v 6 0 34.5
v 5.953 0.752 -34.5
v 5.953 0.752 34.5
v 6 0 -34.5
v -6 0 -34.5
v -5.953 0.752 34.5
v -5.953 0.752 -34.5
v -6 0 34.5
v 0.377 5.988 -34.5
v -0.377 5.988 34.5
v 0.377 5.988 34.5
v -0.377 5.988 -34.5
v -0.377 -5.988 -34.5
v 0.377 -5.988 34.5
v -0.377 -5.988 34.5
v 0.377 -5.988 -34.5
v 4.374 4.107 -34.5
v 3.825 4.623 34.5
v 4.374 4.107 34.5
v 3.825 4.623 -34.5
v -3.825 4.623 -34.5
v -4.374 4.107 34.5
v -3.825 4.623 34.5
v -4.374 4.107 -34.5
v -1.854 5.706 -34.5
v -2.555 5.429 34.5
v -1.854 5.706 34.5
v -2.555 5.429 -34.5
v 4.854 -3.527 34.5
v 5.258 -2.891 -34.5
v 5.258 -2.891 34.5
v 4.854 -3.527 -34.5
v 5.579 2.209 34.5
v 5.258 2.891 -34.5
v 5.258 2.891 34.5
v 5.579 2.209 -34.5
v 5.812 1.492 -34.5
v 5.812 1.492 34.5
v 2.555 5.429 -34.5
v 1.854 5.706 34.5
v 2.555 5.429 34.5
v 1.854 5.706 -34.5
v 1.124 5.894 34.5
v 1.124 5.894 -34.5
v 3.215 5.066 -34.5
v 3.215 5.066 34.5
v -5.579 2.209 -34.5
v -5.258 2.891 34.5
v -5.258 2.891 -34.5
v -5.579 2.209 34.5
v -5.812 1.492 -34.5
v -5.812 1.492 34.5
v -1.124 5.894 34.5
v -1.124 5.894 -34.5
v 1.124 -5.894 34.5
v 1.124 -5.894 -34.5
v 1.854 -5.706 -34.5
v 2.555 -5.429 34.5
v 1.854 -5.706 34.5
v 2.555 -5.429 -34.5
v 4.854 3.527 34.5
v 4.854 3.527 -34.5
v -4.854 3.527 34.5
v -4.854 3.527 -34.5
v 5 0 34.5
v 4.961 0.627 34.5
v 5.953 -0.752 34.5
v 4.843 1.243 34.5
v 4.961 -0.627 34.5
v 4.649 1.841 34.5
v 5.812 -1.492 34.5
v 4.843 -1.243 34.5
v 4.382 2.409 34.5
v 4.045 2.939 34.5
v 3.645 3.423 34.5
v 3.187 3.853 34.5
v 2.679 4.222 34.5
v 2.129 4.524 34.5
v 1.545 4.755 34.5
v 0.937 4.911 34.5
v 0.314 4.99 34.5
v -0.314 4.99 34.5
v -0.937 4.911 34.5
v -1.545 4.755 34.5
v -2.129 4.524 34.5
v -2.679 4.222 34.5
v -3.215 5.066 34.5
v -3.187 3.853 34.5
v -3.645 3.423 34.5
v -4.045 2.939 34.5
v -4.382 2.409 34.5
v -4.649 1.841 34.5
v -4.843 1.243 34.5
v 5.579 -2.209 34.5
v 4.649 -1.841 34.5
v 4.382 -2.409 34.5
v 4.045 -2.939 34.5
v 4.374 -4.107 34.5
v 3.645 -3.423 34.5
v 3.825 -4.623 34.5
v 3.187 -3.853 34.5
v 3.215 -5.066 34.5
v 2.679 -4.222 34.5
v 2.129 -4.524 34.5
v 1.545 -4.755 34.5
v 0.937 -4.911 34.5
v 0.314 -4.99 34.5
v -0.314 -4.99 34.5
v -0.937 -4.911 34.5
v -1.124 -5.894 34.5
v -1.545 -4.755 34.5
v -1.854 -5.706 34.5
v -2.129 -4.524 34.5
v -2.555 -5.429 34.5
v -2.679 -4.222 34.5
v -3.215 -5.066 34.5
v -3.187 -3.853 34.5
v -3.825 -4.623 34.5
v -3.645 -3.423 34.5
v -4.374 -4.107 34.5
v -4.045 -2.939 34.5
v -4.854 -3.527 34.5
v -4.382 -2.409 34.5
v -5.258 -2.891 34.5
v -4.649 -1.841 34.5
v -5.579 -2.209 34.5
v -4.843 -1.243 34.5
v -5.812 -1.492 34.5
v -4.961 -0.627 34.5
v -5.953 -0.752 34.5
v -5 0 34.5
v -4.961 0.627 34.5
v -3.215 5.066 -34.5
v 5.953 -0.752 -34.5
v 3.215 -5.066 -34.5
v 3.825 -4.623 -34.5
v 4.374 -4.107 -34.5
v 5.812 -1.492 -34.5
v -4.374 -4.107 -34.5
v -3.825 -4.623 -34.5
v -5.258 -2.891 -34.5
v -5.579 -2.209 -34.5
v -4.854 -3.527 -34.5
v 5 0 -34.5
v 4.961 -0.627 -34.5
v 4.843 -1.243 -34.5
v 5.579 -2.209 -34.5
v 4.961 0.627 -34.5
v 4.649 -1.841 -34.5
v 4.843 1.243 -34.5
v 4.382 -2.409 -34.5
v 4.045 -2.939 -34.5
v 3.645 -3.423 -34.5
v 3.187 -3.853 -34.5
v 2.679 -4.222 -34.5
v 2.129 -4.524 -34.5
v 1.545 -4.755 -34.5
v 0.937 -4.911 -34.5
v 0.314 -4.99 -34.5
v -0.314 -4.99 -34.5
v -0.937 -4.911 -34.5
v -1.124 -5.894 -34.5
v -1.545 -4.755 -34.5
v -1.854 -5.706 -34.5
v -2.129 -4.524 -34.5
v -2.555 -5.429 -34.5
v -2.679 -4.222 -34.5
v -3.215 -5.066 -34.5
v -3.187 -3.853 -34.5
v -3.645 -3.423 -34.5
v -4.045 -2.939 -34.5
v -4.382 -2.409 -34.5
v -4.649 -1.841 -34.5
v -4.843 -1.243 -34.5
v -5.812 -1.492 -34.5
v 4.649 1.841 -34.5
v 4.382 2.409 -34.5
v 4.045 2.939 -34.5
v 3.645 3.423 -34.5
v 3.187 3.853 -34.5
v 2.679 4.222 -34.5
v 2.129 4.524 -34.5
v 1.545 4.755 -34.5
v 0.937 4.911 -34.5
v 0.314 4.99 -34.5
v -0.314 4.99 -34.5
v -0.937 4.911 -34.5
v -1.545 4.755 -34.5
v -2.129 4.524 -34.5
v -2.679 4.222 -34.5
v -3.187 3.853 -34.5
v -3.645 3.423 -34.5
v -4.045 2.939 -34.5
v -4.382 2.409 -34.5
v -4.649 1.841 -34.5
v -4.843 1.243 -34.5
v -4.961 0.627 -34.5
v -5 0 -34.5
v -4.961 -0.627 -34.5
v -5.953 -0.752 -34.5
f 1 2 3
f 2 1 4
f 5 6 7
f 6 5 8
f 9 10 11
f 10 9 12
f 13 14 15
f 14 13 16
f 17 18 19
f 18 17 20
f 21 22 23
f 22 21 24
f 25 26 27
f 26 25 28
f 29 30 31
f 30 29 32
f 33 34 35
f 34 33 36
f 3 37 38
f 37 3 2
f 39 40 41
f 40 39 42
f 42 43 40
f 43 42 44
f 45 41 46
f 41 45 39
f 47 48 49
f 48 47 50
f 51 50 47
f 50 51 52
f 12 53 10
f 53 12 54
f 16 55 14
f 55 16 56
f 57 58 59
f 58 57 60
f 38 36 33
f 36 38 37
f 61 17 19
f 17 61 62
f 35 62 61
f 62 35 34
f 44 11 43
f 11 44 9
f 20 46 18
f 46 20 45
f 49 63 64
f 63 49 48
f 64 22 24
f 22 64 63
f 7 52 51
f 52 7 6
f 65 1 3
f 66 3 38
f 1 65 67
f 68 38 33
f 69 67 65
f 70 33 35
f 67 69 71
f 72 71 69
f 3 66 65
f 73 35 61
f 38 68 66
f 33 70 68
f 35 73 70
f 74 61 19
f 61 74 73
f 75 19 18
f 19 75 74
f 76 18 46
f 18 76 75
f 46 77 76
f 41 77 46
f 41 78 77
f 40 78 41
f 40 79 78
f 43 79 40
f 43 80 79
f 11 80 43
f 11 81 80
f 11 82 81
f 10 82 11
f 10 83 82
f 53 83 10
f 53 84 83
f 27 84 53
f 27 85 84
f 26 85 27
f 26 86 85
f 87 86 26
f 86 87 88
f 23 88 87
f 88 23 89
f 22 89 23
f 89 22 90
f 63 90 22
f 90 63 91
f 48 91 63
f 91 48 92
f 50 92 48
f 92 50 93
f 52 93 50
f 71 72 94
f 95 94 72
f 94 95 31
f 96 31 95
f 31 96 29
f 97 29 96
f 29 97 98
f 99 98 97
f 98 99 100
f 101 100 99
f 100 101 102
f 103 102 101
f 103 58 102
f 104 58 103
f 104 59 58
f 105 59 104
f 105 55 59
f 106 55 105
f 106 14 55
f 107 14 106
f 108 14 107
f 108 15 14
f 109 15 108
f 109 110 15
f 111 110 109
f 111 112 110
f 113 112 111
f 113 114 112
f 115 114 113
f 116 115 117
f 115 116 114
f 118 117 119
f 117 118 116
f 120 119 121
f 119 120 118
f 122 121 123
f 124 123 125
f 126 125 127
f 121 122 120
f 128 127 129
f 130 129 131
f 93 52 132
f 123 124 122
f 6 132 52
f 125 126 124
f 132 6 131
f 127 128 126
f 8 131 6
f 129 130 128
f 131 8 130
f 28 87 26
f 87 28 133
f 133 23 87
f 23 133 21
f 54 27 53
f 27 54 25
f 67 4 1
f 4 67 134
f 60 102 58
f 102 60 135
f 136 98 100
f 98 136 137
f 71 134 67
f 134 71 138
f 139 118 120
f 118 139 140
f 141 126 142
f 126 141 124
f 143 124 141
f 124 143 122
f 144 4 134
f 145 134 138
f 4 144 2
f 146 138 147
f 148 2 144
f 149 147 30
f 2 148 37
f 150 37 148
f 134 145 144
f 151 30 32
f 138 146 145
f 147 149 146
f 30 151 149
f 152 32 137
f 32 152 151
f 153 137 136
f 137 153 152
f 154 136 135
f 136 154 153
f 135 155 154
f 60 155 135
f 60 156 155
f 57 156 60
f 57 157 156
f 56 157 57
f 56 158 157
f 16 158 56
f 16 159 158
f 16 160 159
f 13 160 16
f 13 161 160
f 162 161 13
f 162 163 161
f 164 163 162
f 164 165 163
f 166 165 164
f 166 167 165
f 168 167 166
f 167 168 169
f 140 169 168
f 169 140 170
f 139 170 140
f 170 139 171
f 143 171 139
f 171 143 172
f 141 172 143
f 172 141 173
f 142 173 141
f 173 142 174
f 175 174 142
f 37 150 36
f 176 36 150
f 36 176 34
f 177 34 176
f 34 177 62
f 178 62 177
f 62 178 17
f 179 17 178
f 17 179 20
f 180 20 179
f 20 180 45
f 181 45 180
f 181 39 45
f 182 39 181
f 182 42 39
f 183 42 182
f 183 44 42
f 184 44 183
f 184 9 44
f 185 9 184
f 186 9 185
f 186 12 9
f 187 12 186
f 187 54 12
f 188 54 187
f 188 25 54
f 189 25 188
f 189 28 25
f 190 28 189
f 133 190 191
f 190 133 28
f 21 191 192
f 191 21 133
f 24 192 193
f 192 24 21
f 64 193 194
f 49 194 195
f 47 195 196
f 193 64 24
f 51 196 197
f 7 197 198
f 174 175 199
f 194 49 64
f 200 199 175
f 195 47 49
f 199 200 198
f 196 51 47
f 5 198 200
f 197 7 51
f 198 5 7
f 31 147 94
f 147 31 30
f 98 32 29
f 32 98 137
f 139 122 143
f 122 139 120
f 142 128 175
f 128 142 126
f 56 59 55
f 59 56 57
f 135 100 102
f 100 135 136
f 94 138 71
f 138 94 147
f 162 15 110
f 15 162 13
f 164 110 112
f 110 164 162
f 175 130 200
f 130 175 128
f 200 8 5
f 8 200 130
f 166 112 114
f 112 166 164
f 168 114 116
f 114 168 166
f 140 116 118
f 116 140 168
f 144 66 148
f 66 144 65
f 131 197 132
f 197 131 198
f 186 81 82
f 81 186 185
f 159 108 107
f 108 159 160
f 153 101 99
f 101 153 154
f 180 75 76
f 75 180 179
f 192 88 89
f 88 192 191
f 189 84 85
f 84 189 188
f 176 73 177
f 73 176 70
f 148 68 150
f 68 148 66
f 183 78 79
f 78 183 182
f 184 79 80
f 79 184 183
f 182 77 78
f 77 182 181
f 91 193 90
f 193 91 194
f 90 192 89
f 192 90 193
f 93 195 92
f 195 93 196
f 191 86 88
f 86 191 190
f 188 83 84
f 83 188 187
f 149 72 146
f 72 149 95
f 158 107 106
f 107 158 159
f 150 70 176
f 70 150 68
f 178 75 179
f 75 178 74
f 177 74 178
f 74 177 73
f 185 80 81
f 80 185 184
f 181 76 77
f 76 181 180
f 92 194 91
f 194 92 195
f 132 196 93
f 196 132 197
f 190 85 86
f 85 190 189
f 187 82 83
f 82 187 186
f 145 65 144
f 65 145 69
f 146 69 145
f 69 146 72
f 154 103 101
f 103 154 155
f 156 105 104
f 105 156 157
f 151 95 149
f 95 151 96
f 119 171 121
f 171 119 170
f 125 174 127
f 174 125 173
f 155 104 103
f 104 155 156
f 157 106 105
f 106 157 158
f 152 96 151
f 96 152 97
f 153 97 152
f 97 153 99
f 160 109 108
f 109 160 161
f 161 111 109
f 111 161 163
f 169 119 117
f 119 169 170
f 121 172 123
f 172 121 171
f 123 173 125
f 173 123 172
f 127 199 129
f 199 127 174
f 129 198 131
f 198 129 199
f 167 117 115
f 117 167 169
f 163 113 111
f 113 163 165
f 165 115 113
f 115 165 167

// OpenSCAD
$fn = 50;


difference() {
	union() {
		translate(v = [0, 0, -34.5000000000]) {
			cylinder(h = 69, r = 6.0000000000);
		}
	}
	union() {
		translate(v = [0, 0, -100.0000000000]) {
			cylinder(h = 200, r = 5.0000000000);
		}
	}
}
